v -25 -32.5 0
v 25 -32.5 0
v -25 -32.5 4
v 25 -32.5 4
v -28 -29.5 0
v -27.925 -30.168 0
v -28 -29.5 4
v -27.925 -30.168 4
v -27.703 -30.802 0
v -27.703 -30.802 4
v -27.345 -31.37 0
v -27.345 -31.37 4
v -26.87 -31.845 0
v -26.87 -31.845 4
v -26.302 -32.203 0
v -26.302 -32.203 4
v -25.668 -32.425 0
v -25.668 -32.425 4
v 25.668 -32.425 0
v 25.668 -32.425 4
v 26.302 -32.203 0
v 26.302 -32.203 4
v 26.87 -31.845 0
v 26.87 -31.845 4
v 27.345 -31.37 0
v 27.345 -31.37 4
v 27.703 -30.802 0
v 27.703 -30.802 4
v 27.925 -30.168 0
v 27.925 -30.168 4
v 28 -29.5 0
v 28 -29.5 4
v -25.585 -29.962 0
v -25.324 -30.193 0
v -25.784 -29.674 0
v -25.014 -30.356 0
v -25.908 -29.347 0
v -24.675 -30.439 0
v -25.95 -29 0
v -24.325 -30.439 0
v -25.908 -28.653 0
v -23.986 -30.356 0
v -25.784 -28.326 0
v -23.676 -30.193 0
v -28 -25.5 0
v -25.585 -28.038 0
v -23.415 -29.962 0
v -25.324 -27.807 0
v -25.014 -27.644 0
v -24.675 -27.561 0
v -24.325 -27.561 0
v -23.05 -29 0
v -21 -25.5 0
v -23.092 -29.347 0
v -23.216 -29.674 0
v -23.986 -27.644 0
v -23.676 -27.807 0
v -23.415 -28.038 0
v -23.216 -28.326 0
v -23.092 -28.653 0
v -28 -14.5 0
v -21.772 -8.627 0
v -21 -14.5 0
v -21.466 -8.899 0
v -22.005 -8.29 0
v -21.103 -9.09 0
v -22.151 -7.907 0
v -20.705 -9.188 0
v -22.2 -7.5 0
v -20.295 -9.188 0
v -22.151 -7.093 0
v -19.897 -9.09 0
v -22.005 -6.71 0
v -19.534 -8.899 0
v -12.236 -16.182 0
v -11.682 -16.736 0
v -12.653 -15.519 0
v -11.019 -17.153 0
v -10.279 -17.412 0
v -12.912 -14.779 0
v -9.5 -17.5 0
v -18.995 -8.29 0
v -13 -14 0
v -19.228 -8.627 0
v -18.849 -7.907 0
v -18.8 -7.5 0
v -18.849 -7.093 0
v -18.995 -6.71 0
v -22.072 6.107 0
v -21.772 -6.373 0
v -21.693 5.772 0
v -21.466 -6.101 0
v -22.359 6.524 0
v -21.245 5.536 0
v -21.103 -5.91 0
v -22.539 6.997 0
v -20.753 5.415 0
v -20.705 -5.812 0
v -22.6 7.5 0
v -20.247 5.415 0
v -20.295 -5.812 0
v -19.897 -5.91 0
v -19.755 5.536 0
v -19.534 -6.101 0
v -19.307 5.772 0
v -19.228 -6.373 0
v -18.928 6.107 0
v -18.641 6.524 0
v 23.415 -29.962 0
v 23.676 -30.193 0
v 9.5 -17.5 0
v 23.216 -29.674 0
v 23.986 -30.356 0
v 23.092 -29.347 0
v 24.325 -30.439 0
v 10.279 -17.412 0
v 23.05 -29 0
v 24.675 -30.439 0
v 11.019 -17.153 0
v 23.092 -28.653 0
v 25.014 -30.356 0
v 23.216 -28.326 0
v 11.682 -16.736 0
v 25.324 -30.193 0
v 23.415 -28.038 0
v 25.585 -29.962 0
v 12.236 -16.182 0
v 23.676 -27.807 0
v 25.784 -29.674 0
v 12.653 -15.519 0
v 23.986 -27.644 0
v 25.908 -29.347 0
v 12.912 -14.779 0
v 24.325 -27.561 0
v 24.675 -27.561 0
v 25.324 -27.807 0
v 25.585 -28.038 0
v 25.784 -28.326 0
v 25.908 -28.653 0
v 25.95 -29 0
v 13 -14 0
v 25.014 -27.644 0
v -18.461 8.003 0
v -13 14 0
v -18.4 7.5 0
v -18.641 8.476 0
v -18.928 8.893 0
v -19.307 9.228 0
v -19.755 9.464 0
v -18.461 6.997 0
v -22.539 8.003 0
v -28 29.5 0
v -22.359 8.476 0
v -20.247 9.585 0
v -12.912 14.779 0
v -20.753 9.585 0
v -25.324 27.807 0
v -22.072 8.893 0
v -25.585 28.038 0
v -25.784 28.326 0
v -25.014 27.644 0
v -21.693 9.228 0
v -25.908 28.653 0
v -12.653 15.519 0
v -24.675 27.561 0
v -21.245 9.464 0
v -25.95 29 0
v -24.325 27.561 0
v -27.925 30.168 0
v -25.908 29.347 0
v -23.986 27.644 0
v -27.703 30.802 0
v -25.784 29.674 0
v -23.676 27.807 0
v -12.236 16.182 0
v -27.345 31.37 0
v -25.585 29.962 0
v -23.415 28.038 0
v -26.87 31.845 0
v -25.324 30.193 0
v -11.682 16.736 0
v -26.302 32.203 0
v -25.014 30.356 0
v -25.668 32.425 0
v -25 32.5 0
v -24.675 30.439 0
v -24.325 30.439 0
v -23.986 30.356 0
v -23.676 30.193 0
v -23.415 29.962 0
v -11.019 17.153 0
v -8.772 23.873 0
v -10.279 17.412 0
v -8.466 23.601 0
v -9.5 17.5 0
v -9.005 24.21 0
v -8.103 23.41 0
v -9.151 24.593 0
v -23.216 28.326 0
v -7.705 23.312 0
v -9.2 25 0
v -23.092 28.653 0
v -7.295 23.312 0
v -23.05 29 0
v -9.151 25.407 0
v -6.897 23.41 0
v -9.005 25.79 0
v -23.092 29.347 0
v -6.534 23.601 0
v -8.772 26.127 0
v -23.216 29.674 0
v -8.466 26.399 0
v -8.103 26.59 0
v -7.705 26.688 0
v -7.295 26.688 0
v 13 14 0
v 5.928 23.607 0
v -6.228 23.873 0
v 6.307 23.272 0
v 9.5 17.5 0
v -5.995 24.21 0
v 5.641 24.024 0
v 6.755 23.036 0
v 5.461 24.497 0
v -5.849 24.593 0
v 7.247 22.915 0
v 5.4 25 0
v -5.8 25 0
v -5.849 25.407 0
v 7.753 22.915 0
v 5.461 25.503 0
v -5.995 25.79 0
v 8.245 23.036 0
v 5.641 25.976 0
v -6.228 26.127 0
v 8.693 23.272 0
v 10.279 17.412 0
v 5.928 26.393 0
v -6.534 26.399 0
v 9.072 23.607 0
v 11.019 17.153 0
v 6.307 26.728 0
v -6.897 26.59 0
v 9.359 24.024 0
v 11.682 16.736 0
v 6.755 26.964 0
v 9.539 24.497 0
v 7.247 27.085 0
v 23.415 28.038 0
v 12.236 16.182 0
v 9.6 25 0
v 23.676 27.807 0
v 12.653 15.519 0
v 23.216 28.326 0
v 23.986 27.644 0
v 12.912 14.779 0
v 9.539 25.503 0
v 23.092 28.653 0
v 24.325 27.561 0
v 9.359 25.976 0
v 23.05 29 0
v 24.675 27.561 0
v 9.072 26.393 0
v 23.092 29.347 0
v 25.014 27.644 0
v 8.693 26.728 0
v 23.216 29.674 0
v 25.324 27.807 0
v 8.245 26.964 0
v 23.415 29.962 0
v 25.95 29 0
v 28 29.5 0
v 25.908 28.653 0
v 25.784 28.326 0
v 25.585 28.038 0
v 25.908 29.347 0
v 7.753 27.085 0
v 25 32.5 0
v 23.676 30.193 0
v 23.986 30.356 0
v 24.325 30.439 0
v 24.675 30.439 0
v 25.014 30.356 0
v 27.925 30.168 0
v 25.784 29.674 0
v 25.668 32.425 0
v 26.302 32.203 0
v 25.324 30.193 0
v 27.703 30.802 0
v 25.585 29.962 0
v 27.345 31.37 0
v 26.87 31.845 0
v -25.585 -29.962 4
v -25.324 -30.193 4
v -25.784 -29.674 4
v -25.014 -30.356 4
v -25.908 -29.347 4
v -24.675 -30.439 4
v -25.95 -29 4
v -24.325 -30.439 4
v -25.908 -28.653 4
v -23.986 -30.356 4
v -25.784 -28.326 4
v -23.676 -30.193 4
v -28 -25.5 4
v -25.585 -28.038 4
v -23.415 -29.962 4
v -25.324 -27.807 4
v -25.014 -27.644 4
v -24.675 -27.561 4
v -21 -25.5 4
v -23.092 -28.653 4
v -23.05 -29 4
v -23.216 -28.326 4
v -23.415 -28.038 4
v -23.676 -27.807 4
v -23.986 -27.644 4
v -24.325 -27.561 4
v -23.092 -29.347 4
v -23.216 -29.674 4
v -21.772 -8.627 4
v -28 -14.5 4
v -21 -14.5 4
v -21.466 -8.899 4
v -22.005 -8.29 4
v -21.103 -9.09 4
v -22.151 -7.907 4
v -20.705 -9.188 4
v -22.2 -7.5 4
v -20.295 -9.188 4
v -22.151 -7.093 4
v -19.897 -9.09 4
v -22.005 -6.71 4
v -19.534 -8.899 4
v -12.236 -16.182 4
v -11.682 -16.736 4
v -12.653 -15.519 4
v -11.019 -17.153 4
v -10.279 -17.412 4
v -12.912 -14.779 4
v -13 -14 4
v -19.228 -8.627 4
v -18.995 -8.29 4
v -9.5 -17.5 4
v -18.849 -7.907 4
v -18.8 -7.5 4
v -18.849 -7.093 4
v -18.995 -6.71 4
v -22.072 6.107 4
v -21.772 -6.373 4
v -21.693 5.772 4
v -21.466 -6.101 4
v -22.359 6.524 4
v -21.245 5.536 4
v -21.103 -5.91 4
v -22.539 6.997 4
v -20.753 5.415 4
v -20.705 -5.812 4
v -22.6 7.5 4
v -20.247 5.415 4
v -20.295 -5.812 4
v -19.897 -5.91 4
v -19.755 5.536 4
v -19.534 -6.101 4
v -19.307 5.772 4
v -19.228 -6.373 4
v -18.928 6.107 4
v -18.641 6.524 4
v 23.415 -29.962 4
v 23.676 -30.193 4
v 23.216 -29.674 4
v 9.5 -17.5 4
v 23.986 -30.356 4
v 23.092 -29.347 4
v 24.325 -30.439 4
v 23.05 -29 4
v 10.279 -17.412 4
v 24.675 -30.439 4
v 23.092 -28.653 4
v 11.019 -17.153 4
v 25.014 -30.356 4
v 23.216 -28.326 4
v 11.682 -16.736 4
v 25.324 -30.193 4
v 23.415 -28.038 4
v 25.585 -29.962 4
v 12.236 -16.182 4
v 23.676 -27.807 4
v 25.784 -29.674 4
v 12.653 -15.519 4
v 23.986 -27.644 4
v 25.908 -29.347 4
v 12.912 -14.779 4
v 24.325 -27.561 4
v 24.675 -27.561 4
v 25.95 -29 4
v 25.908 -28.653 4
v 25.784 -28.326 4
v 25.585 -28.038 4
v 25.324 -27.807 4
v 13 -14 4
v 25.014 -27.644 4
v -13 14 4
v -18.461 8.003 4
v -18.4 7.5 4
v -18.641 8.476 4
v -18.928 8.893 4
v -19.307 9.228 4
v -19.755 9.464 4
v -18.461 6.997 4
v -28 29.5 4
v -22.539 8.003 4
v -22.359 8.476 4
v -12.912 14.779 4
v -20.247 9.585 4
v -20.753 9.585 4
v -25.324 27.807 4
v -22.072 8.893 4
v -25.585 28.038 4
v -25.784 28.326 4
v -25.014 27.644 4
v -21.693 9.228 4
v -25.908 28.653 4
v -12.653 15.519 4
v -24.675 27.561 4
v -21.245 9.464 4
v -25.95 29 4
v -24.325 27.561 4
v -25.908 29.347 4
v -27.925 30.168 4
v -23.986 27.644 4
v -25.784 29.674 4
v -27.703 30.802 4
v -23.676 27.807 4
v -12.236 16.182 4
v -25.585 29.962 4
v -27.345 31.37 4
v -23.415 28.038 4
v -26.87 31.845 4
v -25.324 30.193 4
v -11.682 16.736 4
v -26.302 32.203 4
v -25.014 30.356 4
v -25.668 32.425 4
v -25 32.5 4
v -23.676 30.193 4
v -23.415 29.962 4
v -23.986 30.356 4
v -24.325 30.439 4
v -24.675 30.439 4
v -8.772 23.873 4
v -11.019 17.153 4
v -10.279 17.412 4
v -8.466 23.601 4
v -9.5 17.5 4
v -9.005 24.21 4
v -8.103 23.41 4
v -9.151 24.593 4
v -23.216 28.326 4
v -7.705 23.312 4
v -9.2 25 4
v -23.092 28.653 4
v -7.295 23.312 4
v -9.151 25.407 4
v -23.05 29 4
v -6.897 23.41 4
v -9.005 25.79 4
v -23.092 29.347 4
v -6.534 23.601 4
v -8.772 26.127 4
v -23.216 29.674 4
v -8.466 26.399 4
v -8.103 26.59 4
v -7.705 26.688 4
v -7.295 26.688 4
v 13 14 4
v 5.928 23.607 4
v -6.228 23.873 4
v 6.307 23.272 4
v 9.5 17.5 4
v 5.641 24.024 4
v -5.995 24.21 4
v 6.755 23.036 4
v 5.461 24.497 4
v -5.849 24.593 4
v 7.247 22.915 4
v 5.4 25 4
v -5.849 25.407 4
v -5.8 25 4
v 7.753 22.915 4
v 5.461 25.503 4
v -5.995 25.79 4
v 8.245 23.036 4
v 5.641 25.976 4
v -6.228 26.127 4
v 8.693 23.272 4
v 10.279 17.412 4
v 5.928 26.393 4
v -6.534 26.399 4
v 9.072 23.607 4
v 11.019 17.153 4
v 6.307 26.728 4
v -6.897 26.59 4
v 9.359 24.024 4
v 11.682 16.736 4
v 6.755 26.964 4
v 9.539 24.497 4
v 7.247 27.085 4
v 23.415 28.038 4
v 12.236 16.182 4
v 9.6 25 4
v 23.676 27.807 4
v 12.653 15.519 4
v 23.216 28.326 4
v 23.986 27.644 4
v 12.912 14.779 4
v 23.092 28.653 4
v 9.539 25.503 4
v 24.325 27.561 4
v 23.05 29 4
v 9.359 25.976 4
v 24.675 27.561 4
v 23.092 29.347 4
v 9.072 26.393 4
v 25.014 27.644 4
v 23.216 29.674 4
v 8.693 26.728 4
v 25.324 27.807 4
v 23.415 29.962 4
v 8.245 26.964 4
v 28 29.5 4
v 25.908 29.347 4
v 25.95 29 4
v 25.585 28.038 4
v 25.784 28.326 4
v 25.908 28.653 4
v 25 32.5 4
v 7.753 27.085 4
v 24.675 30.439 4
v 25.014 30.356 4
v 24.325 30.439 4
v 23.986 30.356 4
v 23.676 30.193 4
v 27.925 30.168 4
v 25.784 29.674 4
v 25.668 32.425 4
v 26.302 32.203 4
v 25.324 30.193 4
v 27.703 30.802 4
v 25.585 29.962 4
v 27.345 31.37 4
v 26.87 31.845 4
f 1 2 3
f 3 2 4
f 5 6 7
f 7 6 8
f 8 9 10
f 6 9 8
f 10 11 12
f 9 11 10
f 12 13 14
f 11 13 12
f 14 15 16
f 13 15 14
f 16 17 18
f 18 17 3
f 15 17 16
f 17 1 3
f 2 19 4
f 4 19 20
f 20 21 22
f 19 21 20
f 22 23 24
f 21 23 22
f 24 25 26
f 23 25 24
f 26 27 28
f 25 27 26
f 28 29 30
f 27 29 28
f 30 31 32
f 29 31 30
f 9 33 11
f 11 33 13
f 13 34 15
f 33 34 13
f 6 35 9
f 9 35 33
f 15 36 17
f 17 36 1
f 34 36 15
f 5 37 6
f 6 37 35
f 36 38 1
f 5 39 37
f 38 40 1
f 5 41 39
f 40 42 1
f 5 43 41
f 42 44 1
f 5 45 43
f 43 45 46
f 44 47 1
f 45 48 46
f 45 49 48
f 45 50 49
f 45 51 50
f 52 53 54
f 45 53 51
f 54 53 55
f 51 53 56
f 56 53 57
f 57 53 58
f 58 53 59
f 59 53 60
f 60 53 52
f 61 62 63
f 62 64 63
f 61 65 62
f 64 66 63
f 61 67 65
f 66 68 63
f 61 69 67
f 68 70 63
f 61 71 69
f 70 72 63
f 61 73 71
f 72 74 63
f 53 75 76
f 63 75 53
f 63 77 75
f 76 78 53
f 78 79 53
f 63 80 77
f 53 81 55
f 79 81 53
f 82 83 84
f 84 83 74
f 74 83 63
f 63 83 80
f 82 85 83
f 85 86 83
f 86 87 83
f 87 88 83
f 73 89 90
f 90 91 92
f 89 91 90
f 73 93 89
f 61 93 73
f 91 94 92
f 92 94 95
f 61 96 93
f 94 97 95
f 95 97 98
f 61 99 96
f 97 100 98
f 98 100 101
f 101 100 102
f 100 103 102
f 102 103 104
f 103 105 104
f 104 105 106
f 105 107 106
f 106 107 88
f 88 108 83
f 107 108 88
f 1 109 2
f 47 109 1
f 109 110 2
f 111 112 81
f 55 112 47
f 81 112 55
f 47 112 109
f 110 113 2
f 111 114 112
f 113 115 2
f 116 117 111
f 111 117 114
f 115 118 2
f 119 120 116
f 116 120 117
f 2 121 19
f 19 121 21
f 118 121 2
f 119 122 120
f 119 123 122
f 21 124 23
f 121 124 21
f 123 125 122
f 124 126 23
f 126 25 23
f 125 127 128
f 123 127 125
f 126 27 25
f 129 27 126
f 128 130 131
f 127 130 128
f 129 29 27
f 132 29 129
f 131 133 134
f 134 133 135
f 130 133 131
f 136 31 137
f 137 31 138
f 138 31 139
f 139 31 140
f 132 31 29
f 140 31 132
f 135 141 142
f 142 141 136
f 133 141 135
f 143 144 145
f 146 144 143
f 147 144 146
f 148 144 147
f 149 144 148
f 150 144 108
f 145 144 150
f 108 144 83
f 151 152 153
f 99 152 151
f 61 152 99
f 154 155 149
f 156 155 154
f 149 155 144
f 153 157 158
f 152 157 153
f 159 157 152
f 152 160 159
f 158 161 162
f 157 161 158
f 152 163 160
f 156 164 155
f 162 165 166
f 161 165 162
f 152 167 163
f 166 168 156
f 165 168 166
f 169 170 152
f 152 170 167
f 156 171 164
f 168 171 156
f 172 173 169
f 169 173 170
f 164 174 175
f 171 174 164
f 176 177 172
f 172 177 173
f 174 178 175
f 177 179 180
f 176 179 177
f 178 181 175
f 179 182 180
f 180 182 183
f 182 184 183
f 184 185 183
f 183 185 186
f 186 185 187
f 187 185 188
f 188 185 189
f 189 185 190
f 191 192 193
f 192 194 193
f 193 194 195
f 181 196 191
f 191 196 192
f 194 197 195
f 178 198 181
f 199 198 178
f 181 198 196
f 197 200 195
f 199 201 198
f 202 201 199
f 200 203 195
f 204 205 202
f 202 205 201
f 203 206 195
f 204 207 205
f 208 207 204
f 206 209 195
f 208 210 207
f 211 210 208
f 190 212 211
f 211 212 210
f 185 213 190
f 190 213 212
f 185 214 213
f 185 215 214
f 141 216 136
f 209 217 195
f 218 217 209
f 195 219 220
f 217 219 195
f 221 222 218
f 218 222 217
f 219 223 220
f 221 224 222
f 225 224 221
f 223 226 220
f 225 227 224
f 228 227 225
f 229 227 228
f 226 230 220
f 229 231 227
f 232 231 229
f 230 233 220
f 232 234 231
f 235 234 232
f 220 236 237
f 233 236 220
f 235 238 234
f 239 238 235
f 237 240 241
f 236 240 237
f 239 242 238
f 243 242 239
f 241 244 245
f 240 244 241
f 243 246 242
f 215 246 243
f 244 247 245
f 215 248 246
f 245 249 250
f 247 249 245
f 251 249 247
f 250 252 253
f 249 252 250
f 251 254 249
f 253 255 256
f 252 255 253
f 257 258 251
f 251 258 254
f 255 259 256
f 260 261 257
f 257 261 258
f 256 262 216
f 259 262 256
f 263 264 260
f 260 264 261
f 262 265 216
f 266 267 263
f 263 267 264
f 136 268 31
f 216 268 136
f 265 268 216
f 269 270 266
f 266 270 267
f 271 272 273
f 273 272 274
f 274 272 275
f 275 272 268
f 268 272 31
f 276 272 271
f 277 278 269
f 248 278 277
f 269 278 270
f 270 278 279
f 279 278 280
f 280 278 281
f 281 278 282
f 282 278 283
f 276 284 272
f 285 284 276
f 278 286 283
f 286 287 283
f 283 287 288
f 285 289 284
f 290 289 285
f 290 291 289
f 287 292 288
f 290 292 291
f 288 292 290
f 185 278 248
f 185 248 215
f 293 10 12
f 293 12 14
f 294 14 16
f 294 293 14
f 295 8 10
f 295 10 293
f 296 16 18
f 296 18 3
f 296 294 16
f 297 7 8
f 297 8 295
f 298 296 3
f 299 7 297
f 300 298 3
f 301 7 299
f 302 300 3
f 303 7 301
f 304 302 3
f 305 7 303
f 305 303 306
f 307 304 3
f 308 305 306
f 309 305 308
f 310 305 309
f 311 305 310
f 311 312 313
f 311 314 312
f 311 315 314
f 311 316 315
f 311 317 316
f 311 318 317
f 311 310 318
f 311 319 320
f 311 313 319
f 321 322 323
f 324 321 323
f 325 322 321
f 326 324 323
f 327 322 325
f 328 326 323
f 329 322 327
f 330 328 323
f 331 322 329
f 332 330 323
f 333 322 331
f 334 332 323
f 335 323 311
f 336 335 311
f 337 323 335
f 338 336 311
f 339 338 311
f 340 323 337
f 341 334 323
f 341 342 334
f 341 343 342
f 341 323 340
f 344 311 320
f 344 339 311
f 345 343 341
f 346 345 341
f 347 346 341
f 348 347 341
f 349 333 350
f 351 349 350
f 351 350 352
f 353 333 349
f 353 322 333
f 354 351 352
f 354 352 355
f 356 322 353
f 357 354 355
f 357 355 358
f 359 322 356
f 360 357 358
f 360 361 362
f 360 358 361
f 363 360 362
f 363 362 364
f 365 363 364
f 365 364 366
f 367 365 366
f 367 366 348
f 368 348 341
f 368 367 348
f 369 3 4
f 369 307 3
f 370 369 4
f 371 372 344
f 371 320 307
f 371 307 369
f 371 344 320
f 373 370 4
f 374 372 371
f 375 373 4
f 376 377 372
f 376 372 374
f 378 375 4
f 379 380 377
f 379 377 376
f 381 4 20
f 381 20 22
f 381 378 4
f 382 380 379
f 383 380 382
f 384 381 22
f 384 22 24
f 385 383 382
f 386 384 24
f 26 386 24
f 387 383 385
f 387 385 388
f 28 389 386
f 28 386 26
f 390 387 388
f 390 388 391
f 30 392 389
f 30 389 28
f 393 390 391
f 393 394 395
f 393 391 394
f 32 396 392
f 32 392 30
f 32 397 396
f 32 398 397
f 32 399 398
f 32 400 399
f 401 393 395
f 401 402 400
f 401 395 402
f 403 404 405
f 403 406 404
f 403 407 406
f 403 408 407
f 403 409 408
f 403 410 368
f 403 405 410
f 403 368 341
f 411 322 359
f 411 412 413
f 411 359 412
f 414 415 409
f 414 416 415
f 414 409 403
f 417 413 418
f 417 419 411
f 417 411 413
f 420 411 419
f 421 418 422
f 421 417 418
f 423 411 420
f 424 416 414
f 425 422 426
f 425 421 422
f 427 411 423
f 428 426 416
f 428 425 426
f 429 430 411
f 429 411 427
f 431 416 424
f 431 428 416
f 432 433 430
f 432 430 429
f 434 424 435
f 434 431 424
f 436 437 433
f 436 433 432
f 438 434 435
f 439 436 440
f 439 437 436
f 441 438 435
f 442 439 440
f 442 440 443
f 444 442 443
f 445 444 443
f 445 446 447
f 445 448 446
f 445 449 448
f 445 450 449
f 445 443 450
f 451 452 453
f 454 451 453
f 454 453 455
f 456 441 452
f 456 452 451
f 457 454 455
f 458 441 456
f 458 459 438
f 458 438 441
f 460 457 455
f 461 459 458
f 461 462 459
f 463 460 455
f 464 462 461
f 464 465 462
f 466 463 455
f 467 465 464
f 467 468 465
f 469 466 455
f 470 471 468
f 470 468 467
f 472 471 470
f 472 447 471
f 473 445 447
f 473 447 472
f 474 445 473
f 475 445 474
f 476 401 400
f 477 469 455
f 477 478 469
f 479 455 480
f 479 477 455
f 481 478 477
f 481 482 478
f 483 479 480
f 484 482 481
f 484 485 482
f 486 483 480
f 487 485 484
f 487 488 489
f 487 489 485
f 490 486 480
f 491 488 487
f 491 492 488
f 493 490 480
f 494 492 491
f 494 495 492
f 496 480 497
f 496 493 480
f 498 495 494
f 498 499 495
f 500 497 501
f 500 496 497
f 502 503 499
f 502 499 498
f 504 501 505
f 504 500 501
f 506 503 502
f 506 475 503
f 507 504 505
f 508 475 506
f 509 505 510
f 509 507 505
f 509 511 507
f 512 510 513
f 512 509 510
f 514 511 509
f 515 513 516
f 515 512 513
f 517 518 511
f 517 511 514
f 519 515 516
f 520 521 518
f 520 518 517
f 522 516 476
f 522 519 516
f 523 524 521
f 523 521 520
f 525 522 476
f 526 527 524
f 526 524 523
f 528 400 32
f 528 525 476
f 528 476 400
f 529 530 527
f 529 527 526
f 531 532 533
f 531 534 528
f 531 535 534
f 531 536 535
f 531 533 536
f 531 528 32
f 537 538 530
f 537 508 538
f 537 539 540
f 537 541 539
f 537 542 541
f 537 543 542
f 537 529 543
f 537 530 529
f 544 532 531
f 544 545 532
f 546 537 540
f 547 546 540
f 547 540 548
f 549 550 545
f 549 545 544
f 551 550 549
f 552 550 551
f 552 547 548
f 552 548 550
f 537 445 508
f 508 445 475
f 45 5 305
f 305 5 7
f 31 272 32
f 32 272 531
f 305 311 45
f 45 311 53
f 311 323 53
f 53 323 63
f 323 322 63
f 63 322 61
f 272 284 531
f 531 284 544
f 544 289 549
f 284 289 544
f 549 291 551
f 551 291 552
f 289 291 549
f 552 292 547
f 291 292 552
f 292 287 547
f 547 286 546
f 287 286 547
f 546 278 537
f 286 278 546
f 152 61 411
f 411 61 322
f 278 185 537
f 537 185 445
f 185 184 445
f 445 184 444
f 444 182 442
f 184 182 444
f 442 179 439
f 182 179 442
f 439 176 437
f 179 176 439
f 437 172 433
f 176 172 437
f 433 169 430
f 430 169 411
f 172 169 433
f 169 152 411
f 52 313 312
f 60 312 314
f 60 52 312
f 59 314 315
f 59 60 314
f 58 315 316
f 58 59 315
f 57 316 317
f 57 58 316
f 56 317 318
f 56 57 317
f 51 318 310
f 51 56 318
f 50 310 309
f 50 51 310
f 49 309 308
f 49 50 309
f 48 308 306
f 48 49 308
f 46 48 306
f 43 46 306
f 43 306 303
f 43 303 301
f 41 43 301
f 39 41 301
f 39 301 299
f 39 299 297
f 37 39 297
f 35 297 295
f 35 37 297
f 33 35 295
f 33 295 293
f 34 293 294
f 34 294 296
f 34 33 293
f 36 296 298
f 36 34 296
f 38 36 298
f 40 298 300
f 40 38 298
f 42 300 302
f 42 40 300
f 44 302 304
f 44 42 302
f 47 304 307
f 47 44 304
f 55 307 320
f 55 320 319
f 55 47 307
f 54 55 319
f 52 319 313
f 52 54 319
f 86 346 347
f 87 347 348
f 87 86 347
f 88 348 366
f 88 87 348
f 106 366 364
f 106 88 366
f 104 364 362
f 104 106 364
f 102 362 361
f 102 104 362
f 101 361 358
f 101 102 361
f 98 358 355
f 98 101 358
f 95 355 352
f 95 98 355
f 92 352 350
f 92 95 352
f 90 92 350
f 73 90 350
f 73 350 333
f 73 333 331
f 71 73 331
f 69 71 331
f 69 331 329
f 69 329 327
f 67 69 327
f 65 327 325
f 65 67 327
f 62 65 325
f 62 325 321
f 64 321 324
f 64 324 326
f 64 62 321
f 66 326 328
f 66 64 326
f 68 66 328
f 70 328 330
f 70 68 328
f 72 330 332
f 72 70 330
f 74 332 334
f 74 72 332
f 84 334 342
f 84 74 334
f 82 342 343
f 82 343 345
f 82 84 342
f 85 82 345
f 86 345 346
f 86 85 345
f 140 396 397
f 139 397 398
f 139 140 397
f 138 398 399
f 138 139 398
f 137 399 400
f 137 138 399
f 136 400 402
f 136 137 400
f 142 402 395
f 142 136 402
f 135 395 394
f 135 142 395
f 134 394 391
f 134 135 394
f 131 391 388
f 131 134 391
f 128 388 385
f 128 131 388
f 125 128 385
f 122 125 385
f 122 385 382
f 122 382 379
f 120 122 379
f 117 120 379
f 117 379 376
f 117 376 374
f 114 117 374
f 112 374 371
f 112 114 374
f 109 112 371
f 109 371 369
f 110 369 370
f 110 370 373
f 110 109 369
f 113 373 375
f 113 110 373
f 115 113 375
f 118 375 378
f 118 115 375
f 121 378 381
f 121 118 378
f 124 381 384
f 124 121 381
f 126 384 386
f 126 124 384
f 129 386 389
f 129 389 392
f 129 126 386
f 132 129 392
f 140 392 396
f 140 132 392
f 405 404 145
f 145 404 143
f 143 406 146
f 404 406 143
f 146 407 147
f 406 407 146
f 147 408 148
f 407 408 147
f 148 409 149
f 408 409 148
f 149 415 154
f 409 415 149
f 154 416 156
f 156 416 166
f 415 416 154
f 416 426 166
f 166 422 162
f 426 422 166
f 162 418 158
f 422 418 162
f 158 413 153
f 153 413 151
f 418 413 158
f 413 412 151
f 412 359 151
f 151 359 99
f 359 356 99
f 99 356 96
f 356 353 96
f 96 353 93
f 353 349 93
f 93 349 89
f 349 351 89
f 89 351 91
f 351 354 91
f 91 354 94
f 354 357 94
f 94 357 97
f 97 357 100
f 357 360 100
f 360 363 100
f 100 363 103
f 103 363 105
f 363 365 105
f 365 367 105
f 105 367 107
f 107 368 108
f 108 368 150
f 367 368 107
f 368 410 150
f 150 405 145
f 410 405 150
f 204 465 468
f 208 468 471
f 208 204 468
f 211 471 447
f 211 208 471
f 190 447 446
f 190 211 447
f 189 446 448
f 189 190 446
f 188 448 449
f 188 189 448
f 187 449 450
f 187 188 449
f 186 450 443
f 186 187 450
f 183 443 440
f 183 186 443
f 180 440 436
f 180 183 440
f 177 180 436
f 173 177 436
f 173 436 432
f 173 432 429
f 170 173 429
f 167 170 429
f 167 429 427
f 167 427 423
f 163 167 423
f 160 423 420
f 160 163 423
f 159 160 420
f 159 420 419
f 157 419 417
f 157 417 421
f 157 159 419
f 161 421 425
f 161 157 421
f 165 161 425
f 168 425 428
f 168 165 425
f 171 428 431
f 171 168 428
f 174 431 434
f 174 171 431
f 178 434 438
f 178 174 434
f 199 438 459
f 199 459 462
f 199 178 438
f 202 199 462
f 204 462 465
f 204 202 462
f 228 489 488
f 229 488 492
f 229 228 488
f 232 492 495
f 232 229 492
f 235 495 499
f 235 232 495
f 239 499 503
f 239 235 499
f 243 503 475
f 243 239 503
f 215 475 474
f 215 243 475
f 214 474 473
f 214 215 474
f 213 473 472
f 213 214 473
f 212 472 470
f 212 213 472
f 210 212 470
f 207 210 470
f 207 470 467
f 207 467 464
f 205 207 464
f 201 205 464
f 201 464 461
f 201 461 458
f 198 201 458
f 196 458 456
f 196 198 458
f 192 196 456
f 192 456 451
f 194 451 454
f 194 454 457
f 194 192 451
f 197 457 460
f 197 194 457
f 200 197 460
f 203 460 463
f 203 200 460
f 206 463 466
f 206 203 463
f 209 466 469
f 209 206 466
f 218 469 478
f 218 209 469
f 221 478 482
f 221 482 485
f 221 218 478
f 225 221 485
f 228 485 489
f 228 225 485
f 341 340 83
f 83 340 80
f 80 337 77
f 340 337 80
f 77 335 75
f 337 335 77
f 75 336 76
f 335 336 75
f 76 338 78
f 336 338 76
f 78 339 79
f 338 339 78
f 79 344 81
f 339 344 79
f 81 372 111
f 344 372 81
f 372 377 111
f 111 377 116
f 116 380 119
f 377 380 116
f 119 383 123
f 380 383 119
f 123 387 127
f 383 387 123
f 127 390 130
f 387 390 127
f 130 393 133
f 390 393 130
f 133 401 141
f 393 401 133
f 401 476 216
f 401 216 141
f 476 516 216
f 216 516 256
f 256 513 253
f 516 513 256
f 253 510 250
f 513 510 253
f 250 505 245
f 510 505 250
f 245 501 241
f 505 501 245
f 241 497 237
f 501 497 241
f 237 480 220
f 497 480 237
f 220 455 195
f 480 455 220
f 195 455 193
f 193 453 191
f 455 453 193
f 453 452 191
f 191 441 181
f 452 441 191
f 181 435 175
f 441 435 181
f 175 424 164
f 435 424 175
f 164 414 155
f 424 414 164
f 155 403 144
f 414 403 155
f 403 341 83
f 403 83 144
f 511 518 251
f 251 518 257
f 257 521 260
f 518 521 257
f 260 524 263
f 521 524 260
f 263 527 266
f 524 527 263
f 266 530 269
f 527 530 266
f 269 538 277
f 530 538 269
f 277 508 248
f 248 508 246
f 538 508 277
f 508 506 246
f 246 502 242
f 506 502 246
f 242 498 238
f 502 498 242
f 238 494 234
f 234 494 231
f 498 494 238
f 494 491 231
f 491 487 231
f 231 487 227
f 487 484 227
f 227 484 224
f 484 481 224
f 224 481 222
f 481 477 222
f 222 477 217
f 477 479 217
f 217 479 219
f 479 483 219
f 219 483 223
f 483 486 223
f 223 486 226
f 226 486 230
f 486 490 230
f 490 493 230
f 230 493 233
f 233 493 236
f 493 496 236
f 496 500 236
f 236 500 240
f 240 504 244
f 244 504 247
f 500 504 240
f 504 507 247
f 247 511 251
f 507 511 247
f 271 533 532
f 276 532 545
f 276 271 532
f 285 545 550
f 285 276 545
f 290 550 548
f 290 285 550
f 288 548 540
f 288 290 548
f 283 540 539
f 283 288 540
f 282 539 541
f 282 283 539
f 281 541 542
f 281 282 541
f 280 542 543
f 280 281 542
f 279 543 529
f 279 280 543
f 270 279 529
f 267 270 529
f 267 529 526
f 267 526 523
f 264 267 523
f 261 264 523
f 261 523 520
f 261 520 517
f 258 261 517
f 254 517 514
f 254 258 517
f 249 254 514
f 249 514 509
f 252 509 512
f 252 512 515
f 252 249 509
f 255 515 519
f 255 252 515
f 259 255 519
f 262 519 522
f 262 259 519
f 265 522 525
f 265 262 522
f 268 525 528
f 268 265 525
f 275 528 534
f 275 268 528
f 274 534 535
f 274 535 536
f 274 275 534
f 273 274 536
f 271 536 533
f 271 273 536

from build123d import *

# Parameters (mm, degrees)
PAD_DEPTH       = 4
SKETCH001_R     = 1.45
HOLE_DEPTH      = 4.001
SKETCH002_W     = 7
SKETCH002_H     = 11
POCKET_DEPTH    = 4.001
SKETCH003_R     = 2.1
POCKET001_DEPTH = 4.001
SKETCH004_R     = 1.7
HOLE001_DEPTH   = 4.001
POCKET002_DEPTH = 4.001


with BuildPart() as part:
    # Sketch → Pad (new body)
    with BuildSketch(Plane.XY):
        with BuildLine():
            Line((-25, -32.5), (25, -32.5))
            ThreePointArc((25, -32.5), (27.12132, -31.62132), (28, -29.5))
            Line((28, -29.5), (28, 29.5))
            ThreePointArc((28, 29.5), (27.12132, 31.62132), (25, 32.5))
            Line((25, 32.5), (-25, 32.5))
            ThreePointArc((-25, 32.5), (-27.12132, 31.62132), (-28, 29.5))
            Line((-28, 29.5), (-28, -29.5))
            ThreePointArc((-28, -29.5), (-27.12132, -31.62132), (-25, -32.5))
        make_face()
    extrude(amount=PAD_DEPTH)

    # Sketch001 (on Face10 of Pad) → Hole (cut, through all)
    with BuildSketch(Plane.XY.offset(4)):
        with Locations((24.5, -29)):
            Circle(SKETCH001_R)
        with Locations((-24.5, -29)):
            Circle(SKETCH001_R)
        with Locations((-24.5, 29)):
            Circle(SKETCH001_R)
        with Locations((24.5, 29)):
            Circle(SKETCH001_R)
    extrude(amount=-HOLE_DEPTH, mode=Mode.SUBTRACT)

    # Sketch002 (on Face5 of Hole) → Pocket (cut, through all)
    with BuildSketch(Plane.XY.offset(4)):
        with Locations((-24.5, -20)):
            Rectangle(SKETCH002_W, SKETCH002_H)
    extrude(amount=-POCKET_DEPTH, mode=Mode.SUBTRACT)

    # Sketch003 (on Face5 of Pocket) → Pocket001 (cut, through all)
    with BuildSketch(Plane.XY.offset(4)):
        with Locations((7.5, 25)):
            Circle(SKETCH003_R)
        with Locations((-20.5, 7.5)):
            Circle(SKETCH003_R)
    extrude(amount=-POCKET001_DEPTH, mode=Mode.SUBTRACT)

    # Sketch004 (on Face5 of Pocket001) → Hole001 (cut, through all)
    with BuildSketch(Plane.XY.offset(4)):
        with Locations((-20.5, -7.5)):
            Circle(SKETCH004_R)
        with Locations((-7.5, 25)):
            Circle(SKETCH004_R)
    extrude(amount=-HOLE001_DEPTH, mode=Mode.SUBTRACT)

    # Sketch005 (on Face5 of Hole001) → Pocket002 (cut, through all)
    with BuildSketch(Plane.XY.offset(4)):
        with BuildLine():
            Line((-9.5, 17.5), (9.5, 17.5))
            ThreePointArc((13, 14), (11.974874, 16.474874), (9.5, 17.5))
            Line((13, 14), (13, -14))
            ThreePointArc((9.5, -17.5), (11.974874, -16.474874), (13, -14))
            Line((9.5, -17.5), (-9.5, -17.5))
            ThreePointArc((-13, -14), (-11.974874, -16.474874), (-9.5, -17.5))
            Line((-13, -14), (-13, 14))
            ThreePointArc((-9.5, 17.5), (-11.974874, 16.474874), (-13, 14))
        make_face()
    extrude(amount=-POCKET002_DEPTH, mode=Mode.SUBTRACT)


solid = part.part
